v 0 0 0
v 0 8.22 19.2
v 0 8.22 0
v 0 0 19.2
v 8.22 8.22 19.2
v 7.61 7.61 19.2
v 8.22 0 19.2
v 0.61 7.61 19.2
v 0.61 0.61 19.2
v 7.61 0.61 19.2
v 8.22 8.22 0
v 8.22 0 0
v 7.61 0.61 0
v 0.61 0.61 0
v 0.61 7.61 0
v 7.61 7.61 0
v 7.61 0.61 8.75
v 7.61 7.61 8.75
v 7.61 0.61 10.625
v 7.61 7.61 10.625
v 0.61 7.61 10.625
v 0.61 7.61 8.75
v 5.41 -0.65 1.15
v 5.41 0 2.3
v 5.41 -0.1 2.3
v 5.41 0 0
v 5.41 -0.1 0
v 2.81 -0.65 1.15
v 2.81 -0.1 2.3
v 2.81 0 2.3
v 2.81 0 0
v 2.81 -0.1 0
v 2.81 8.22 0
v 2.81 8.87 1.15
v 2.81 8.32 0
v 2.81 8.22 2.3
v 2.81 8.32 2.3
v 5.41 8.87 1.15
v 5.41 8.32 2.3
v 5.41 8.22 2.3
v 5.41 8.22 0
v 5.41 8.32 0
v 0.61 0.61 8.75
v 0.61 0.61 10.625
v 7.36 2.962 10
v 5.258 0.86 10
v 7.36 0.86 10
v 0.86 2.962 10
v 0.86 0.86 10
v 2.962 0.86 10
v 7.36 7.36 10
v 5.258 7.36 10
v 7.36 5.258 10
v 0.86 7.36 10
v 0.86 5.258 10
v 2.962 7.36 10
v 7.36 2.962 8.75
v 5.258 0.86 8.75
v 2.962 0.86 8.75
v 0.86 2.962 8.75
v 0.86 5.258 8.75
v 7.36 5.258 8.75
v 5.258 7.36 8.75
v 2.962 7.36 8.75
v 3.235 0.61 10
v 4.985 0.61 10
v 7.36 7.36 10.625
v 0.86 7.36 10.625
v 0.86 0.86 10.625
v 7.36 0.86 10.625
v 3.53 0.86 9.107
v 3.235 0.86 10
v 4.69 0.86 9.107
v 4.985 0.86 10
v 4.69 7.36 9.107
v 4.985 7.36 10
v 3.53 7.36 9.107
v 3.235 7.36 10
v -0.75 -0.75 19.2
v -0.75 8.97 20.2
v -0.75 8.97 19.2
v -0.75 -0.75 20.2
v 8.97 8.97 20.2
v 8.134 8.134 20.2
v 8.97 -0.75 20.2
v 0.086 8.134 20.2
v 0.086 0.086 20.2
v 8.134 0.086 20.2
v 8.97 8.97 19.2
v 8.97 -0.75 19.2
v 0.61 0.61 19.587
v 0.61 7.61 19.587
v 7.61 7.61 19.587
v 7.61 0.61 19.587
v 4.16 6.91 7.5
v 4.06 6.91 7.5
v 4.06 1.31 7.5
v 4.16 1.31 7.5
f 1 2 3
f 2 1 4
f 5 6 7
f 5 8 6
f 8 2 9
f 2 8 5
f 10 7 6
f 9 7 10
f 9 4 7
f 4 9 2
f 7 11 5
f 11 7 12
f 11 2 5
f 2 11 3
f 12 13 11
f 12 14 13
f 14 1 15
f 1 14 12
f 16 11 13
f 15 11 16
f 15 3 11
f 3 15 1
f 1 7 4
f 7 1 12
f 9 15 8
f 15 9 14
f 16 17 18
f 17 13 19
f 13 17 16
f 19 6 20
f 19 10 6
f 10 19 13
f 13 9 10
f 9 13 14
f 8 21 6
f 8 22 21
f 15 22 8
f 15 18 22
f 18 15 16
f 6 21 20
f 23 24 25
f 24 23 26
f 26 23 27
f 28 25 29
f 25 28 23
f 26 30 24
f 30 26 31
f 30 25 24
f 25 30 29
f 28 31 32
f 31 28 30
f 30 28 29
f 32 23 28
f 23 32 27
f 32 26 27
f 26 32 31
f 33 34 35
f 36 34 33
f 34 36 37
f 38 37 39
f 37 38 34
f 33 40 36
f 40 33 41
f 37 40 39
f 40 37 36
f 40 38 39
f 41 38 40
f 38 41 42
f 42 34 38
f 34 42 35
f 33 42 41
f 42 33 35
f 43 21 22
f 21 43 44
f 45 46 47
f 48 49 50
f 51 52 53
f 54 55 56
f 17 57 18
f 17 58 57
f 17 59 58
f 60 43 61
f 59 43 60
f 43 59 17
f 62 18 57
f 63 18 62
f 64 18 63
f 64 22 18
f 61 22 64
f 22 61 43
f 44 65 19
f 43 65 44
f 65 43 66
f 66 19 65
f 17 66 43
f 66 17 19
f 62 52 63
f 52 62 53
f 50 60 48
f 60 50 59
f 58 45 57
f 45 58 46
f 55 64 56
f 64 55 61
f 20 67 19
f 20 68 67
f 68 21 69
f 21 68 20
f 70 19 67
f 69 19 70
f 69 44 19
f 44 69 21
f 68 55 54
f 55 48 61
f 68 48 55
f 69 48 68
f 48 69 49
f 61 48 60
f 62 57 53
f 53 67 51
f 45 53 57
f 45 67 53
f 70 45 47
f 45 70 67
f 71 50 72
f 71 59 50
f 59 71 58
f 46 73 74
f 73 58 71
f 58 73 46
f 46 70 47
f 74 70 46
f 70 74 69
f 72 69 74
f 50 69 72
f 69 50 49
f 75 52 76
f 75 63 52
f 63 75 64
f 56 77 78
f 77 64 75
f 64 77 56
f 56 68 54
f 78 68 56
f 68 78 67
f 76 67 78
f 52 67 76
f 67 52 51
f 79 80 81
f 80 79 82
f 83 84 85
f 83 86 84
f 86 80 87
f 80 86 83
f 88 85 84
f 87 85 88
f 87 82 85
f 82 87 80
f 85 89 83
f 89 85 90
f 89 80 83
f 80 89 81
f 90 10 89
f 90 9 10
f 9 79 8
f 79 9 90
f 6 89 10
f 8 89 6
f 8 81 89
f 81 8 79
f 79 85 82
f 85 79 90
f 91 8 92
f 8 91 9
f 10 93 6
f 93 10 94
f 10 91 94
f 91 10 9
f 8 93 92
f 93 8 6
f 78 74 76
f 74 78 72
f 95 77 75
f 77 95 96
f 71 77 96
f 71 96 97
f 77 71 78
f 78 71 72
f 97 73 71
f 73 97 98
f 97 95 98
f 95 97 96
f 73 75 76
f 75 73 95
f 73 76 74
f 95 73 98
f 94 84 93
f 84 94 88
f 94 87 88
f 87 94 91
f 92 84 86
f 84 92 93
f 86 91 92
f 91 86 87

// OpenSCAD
outside=8.22;
inside=7;
height=19.2;
latch_bite=0.65;
latch_width=2.6;
latch_height=2.3;
split_width=1.75;
mid_point=10;
mid_thickness=1.25;


module keyStem(o = 8.22, i = 7, h = 19.2,b = 0.5, bw=2.6, bh=2.3, s = 1.75, m = 10, mt = 1.25 )
{difference() {
	union() {


		squareTube(o=o,i=i,h=h);

		translate([o/2,-b/2,bh/2])
			lockingTab(b*3,b,bw,bh);

		translate([o/2,o+b/2,bh/2])
		rotate([0,0,180])
			lockingTab(b*3,b,bw,bh);

		translate([o/2,o/2,m-mt/2])
			innerCorners(o=i, i=o-2,h=mt);

		translate([(o-i)/2,(o-i)/2,m-mt])
			squareTube(o=i,i=i-0.5,h=mt*1.5);

		translate([o/2,o/2,m])
		rotate([0,0,90])
			splitBar(l=i, w=s,h=mt*2);

		// Extra lip for added strength
		translate([-1.5/2,-1.5/2,h])
			topLip(o,i,1.5,1);
	}

	translate([o/2,o/2,h*0.75+1.1])
		shape_wedge(x1=0.01,y1=0.01,z=h/4,x2=o,y2=o,x2p = 0.5,y2p = 0.5);
}}

module topLip(o=10,i=9,lw=1, lh =1)
{
	squareTube(i=i,o=o+lw,h=lh);
}

module lockingTab(s = 50,b = 1, w = 3, h=3)
{union () {
	// Top Removable wedge
	shape_wedge(x1=w,y1=b,z=h/2,x2=w,y2=0.1,x2p = 1,y2p = 1);

	rotate([0,180,0])
		shape_wedge(x1=w,y1=b,z=h/2,x2=w,y2=0.1,x2p = 1,y2p = 1);
}}


module innerCorners(o=9,i=8,h=2)
{difference() {
	cube([o,o,h],true);

	translate([0,0,-h/2])
	rotate([0,0,45])
		cube([i,i,h*3],true);
}}

module splitBar(l = 10, w = 2,h=2)
{	rotate([180,0,0])
	shape_wedge(x1=l,y1=w,z=h,x2=l*0.8,y2=0.1,x2p = 0.5,y2p = 0.5);
}


module shape_wedge(x1,y1,z,x2,y2,x2p = 0.5,y2p = 0.5)
{
	x = (x1-x2) * (x2p - 0.5);
	y = (y1-y2) * (y2p - 0.5);
	points = [
		[x1/2,y1/2,0],  // 0
		[x1/2,-y1/2,0], // 1
		[-x1/2,-y1/2,0],// 2
		[-x1/2,y1/2,0], // 3

		[(x2)/2+x,(y2)/2+y,z],  // 4
		[(x2)/2+x,-(y2)/2+y,z], // 5
		[-(x2)/2+x,-(y2)/2+y,z],// 6
		[-(x2)/2+x,(y2)/2+y,z], // 7
	];

	faces = [
		[3,2,1,0],
		[6,5,1,2],
		[7,6,2,3],
		[4,7,3,0],
		[5,4,0,1],
		[4,5,6,7]
	];

	polyhedron( points, faces );
}


module squareTube(i = 9, o = 10, h = 20)
{difference() {
	cube([o,o,h]);

	translate([(o-i)/2,(o-i)/2,-h/2])
		cube([i,i,h*2]);

}}



keyStem(
	outside,
	inside,
	height,
	latch_bite,
	latch_width,
	latch_height,
	split_width,
	mid_point,
	mid_thickness
);
